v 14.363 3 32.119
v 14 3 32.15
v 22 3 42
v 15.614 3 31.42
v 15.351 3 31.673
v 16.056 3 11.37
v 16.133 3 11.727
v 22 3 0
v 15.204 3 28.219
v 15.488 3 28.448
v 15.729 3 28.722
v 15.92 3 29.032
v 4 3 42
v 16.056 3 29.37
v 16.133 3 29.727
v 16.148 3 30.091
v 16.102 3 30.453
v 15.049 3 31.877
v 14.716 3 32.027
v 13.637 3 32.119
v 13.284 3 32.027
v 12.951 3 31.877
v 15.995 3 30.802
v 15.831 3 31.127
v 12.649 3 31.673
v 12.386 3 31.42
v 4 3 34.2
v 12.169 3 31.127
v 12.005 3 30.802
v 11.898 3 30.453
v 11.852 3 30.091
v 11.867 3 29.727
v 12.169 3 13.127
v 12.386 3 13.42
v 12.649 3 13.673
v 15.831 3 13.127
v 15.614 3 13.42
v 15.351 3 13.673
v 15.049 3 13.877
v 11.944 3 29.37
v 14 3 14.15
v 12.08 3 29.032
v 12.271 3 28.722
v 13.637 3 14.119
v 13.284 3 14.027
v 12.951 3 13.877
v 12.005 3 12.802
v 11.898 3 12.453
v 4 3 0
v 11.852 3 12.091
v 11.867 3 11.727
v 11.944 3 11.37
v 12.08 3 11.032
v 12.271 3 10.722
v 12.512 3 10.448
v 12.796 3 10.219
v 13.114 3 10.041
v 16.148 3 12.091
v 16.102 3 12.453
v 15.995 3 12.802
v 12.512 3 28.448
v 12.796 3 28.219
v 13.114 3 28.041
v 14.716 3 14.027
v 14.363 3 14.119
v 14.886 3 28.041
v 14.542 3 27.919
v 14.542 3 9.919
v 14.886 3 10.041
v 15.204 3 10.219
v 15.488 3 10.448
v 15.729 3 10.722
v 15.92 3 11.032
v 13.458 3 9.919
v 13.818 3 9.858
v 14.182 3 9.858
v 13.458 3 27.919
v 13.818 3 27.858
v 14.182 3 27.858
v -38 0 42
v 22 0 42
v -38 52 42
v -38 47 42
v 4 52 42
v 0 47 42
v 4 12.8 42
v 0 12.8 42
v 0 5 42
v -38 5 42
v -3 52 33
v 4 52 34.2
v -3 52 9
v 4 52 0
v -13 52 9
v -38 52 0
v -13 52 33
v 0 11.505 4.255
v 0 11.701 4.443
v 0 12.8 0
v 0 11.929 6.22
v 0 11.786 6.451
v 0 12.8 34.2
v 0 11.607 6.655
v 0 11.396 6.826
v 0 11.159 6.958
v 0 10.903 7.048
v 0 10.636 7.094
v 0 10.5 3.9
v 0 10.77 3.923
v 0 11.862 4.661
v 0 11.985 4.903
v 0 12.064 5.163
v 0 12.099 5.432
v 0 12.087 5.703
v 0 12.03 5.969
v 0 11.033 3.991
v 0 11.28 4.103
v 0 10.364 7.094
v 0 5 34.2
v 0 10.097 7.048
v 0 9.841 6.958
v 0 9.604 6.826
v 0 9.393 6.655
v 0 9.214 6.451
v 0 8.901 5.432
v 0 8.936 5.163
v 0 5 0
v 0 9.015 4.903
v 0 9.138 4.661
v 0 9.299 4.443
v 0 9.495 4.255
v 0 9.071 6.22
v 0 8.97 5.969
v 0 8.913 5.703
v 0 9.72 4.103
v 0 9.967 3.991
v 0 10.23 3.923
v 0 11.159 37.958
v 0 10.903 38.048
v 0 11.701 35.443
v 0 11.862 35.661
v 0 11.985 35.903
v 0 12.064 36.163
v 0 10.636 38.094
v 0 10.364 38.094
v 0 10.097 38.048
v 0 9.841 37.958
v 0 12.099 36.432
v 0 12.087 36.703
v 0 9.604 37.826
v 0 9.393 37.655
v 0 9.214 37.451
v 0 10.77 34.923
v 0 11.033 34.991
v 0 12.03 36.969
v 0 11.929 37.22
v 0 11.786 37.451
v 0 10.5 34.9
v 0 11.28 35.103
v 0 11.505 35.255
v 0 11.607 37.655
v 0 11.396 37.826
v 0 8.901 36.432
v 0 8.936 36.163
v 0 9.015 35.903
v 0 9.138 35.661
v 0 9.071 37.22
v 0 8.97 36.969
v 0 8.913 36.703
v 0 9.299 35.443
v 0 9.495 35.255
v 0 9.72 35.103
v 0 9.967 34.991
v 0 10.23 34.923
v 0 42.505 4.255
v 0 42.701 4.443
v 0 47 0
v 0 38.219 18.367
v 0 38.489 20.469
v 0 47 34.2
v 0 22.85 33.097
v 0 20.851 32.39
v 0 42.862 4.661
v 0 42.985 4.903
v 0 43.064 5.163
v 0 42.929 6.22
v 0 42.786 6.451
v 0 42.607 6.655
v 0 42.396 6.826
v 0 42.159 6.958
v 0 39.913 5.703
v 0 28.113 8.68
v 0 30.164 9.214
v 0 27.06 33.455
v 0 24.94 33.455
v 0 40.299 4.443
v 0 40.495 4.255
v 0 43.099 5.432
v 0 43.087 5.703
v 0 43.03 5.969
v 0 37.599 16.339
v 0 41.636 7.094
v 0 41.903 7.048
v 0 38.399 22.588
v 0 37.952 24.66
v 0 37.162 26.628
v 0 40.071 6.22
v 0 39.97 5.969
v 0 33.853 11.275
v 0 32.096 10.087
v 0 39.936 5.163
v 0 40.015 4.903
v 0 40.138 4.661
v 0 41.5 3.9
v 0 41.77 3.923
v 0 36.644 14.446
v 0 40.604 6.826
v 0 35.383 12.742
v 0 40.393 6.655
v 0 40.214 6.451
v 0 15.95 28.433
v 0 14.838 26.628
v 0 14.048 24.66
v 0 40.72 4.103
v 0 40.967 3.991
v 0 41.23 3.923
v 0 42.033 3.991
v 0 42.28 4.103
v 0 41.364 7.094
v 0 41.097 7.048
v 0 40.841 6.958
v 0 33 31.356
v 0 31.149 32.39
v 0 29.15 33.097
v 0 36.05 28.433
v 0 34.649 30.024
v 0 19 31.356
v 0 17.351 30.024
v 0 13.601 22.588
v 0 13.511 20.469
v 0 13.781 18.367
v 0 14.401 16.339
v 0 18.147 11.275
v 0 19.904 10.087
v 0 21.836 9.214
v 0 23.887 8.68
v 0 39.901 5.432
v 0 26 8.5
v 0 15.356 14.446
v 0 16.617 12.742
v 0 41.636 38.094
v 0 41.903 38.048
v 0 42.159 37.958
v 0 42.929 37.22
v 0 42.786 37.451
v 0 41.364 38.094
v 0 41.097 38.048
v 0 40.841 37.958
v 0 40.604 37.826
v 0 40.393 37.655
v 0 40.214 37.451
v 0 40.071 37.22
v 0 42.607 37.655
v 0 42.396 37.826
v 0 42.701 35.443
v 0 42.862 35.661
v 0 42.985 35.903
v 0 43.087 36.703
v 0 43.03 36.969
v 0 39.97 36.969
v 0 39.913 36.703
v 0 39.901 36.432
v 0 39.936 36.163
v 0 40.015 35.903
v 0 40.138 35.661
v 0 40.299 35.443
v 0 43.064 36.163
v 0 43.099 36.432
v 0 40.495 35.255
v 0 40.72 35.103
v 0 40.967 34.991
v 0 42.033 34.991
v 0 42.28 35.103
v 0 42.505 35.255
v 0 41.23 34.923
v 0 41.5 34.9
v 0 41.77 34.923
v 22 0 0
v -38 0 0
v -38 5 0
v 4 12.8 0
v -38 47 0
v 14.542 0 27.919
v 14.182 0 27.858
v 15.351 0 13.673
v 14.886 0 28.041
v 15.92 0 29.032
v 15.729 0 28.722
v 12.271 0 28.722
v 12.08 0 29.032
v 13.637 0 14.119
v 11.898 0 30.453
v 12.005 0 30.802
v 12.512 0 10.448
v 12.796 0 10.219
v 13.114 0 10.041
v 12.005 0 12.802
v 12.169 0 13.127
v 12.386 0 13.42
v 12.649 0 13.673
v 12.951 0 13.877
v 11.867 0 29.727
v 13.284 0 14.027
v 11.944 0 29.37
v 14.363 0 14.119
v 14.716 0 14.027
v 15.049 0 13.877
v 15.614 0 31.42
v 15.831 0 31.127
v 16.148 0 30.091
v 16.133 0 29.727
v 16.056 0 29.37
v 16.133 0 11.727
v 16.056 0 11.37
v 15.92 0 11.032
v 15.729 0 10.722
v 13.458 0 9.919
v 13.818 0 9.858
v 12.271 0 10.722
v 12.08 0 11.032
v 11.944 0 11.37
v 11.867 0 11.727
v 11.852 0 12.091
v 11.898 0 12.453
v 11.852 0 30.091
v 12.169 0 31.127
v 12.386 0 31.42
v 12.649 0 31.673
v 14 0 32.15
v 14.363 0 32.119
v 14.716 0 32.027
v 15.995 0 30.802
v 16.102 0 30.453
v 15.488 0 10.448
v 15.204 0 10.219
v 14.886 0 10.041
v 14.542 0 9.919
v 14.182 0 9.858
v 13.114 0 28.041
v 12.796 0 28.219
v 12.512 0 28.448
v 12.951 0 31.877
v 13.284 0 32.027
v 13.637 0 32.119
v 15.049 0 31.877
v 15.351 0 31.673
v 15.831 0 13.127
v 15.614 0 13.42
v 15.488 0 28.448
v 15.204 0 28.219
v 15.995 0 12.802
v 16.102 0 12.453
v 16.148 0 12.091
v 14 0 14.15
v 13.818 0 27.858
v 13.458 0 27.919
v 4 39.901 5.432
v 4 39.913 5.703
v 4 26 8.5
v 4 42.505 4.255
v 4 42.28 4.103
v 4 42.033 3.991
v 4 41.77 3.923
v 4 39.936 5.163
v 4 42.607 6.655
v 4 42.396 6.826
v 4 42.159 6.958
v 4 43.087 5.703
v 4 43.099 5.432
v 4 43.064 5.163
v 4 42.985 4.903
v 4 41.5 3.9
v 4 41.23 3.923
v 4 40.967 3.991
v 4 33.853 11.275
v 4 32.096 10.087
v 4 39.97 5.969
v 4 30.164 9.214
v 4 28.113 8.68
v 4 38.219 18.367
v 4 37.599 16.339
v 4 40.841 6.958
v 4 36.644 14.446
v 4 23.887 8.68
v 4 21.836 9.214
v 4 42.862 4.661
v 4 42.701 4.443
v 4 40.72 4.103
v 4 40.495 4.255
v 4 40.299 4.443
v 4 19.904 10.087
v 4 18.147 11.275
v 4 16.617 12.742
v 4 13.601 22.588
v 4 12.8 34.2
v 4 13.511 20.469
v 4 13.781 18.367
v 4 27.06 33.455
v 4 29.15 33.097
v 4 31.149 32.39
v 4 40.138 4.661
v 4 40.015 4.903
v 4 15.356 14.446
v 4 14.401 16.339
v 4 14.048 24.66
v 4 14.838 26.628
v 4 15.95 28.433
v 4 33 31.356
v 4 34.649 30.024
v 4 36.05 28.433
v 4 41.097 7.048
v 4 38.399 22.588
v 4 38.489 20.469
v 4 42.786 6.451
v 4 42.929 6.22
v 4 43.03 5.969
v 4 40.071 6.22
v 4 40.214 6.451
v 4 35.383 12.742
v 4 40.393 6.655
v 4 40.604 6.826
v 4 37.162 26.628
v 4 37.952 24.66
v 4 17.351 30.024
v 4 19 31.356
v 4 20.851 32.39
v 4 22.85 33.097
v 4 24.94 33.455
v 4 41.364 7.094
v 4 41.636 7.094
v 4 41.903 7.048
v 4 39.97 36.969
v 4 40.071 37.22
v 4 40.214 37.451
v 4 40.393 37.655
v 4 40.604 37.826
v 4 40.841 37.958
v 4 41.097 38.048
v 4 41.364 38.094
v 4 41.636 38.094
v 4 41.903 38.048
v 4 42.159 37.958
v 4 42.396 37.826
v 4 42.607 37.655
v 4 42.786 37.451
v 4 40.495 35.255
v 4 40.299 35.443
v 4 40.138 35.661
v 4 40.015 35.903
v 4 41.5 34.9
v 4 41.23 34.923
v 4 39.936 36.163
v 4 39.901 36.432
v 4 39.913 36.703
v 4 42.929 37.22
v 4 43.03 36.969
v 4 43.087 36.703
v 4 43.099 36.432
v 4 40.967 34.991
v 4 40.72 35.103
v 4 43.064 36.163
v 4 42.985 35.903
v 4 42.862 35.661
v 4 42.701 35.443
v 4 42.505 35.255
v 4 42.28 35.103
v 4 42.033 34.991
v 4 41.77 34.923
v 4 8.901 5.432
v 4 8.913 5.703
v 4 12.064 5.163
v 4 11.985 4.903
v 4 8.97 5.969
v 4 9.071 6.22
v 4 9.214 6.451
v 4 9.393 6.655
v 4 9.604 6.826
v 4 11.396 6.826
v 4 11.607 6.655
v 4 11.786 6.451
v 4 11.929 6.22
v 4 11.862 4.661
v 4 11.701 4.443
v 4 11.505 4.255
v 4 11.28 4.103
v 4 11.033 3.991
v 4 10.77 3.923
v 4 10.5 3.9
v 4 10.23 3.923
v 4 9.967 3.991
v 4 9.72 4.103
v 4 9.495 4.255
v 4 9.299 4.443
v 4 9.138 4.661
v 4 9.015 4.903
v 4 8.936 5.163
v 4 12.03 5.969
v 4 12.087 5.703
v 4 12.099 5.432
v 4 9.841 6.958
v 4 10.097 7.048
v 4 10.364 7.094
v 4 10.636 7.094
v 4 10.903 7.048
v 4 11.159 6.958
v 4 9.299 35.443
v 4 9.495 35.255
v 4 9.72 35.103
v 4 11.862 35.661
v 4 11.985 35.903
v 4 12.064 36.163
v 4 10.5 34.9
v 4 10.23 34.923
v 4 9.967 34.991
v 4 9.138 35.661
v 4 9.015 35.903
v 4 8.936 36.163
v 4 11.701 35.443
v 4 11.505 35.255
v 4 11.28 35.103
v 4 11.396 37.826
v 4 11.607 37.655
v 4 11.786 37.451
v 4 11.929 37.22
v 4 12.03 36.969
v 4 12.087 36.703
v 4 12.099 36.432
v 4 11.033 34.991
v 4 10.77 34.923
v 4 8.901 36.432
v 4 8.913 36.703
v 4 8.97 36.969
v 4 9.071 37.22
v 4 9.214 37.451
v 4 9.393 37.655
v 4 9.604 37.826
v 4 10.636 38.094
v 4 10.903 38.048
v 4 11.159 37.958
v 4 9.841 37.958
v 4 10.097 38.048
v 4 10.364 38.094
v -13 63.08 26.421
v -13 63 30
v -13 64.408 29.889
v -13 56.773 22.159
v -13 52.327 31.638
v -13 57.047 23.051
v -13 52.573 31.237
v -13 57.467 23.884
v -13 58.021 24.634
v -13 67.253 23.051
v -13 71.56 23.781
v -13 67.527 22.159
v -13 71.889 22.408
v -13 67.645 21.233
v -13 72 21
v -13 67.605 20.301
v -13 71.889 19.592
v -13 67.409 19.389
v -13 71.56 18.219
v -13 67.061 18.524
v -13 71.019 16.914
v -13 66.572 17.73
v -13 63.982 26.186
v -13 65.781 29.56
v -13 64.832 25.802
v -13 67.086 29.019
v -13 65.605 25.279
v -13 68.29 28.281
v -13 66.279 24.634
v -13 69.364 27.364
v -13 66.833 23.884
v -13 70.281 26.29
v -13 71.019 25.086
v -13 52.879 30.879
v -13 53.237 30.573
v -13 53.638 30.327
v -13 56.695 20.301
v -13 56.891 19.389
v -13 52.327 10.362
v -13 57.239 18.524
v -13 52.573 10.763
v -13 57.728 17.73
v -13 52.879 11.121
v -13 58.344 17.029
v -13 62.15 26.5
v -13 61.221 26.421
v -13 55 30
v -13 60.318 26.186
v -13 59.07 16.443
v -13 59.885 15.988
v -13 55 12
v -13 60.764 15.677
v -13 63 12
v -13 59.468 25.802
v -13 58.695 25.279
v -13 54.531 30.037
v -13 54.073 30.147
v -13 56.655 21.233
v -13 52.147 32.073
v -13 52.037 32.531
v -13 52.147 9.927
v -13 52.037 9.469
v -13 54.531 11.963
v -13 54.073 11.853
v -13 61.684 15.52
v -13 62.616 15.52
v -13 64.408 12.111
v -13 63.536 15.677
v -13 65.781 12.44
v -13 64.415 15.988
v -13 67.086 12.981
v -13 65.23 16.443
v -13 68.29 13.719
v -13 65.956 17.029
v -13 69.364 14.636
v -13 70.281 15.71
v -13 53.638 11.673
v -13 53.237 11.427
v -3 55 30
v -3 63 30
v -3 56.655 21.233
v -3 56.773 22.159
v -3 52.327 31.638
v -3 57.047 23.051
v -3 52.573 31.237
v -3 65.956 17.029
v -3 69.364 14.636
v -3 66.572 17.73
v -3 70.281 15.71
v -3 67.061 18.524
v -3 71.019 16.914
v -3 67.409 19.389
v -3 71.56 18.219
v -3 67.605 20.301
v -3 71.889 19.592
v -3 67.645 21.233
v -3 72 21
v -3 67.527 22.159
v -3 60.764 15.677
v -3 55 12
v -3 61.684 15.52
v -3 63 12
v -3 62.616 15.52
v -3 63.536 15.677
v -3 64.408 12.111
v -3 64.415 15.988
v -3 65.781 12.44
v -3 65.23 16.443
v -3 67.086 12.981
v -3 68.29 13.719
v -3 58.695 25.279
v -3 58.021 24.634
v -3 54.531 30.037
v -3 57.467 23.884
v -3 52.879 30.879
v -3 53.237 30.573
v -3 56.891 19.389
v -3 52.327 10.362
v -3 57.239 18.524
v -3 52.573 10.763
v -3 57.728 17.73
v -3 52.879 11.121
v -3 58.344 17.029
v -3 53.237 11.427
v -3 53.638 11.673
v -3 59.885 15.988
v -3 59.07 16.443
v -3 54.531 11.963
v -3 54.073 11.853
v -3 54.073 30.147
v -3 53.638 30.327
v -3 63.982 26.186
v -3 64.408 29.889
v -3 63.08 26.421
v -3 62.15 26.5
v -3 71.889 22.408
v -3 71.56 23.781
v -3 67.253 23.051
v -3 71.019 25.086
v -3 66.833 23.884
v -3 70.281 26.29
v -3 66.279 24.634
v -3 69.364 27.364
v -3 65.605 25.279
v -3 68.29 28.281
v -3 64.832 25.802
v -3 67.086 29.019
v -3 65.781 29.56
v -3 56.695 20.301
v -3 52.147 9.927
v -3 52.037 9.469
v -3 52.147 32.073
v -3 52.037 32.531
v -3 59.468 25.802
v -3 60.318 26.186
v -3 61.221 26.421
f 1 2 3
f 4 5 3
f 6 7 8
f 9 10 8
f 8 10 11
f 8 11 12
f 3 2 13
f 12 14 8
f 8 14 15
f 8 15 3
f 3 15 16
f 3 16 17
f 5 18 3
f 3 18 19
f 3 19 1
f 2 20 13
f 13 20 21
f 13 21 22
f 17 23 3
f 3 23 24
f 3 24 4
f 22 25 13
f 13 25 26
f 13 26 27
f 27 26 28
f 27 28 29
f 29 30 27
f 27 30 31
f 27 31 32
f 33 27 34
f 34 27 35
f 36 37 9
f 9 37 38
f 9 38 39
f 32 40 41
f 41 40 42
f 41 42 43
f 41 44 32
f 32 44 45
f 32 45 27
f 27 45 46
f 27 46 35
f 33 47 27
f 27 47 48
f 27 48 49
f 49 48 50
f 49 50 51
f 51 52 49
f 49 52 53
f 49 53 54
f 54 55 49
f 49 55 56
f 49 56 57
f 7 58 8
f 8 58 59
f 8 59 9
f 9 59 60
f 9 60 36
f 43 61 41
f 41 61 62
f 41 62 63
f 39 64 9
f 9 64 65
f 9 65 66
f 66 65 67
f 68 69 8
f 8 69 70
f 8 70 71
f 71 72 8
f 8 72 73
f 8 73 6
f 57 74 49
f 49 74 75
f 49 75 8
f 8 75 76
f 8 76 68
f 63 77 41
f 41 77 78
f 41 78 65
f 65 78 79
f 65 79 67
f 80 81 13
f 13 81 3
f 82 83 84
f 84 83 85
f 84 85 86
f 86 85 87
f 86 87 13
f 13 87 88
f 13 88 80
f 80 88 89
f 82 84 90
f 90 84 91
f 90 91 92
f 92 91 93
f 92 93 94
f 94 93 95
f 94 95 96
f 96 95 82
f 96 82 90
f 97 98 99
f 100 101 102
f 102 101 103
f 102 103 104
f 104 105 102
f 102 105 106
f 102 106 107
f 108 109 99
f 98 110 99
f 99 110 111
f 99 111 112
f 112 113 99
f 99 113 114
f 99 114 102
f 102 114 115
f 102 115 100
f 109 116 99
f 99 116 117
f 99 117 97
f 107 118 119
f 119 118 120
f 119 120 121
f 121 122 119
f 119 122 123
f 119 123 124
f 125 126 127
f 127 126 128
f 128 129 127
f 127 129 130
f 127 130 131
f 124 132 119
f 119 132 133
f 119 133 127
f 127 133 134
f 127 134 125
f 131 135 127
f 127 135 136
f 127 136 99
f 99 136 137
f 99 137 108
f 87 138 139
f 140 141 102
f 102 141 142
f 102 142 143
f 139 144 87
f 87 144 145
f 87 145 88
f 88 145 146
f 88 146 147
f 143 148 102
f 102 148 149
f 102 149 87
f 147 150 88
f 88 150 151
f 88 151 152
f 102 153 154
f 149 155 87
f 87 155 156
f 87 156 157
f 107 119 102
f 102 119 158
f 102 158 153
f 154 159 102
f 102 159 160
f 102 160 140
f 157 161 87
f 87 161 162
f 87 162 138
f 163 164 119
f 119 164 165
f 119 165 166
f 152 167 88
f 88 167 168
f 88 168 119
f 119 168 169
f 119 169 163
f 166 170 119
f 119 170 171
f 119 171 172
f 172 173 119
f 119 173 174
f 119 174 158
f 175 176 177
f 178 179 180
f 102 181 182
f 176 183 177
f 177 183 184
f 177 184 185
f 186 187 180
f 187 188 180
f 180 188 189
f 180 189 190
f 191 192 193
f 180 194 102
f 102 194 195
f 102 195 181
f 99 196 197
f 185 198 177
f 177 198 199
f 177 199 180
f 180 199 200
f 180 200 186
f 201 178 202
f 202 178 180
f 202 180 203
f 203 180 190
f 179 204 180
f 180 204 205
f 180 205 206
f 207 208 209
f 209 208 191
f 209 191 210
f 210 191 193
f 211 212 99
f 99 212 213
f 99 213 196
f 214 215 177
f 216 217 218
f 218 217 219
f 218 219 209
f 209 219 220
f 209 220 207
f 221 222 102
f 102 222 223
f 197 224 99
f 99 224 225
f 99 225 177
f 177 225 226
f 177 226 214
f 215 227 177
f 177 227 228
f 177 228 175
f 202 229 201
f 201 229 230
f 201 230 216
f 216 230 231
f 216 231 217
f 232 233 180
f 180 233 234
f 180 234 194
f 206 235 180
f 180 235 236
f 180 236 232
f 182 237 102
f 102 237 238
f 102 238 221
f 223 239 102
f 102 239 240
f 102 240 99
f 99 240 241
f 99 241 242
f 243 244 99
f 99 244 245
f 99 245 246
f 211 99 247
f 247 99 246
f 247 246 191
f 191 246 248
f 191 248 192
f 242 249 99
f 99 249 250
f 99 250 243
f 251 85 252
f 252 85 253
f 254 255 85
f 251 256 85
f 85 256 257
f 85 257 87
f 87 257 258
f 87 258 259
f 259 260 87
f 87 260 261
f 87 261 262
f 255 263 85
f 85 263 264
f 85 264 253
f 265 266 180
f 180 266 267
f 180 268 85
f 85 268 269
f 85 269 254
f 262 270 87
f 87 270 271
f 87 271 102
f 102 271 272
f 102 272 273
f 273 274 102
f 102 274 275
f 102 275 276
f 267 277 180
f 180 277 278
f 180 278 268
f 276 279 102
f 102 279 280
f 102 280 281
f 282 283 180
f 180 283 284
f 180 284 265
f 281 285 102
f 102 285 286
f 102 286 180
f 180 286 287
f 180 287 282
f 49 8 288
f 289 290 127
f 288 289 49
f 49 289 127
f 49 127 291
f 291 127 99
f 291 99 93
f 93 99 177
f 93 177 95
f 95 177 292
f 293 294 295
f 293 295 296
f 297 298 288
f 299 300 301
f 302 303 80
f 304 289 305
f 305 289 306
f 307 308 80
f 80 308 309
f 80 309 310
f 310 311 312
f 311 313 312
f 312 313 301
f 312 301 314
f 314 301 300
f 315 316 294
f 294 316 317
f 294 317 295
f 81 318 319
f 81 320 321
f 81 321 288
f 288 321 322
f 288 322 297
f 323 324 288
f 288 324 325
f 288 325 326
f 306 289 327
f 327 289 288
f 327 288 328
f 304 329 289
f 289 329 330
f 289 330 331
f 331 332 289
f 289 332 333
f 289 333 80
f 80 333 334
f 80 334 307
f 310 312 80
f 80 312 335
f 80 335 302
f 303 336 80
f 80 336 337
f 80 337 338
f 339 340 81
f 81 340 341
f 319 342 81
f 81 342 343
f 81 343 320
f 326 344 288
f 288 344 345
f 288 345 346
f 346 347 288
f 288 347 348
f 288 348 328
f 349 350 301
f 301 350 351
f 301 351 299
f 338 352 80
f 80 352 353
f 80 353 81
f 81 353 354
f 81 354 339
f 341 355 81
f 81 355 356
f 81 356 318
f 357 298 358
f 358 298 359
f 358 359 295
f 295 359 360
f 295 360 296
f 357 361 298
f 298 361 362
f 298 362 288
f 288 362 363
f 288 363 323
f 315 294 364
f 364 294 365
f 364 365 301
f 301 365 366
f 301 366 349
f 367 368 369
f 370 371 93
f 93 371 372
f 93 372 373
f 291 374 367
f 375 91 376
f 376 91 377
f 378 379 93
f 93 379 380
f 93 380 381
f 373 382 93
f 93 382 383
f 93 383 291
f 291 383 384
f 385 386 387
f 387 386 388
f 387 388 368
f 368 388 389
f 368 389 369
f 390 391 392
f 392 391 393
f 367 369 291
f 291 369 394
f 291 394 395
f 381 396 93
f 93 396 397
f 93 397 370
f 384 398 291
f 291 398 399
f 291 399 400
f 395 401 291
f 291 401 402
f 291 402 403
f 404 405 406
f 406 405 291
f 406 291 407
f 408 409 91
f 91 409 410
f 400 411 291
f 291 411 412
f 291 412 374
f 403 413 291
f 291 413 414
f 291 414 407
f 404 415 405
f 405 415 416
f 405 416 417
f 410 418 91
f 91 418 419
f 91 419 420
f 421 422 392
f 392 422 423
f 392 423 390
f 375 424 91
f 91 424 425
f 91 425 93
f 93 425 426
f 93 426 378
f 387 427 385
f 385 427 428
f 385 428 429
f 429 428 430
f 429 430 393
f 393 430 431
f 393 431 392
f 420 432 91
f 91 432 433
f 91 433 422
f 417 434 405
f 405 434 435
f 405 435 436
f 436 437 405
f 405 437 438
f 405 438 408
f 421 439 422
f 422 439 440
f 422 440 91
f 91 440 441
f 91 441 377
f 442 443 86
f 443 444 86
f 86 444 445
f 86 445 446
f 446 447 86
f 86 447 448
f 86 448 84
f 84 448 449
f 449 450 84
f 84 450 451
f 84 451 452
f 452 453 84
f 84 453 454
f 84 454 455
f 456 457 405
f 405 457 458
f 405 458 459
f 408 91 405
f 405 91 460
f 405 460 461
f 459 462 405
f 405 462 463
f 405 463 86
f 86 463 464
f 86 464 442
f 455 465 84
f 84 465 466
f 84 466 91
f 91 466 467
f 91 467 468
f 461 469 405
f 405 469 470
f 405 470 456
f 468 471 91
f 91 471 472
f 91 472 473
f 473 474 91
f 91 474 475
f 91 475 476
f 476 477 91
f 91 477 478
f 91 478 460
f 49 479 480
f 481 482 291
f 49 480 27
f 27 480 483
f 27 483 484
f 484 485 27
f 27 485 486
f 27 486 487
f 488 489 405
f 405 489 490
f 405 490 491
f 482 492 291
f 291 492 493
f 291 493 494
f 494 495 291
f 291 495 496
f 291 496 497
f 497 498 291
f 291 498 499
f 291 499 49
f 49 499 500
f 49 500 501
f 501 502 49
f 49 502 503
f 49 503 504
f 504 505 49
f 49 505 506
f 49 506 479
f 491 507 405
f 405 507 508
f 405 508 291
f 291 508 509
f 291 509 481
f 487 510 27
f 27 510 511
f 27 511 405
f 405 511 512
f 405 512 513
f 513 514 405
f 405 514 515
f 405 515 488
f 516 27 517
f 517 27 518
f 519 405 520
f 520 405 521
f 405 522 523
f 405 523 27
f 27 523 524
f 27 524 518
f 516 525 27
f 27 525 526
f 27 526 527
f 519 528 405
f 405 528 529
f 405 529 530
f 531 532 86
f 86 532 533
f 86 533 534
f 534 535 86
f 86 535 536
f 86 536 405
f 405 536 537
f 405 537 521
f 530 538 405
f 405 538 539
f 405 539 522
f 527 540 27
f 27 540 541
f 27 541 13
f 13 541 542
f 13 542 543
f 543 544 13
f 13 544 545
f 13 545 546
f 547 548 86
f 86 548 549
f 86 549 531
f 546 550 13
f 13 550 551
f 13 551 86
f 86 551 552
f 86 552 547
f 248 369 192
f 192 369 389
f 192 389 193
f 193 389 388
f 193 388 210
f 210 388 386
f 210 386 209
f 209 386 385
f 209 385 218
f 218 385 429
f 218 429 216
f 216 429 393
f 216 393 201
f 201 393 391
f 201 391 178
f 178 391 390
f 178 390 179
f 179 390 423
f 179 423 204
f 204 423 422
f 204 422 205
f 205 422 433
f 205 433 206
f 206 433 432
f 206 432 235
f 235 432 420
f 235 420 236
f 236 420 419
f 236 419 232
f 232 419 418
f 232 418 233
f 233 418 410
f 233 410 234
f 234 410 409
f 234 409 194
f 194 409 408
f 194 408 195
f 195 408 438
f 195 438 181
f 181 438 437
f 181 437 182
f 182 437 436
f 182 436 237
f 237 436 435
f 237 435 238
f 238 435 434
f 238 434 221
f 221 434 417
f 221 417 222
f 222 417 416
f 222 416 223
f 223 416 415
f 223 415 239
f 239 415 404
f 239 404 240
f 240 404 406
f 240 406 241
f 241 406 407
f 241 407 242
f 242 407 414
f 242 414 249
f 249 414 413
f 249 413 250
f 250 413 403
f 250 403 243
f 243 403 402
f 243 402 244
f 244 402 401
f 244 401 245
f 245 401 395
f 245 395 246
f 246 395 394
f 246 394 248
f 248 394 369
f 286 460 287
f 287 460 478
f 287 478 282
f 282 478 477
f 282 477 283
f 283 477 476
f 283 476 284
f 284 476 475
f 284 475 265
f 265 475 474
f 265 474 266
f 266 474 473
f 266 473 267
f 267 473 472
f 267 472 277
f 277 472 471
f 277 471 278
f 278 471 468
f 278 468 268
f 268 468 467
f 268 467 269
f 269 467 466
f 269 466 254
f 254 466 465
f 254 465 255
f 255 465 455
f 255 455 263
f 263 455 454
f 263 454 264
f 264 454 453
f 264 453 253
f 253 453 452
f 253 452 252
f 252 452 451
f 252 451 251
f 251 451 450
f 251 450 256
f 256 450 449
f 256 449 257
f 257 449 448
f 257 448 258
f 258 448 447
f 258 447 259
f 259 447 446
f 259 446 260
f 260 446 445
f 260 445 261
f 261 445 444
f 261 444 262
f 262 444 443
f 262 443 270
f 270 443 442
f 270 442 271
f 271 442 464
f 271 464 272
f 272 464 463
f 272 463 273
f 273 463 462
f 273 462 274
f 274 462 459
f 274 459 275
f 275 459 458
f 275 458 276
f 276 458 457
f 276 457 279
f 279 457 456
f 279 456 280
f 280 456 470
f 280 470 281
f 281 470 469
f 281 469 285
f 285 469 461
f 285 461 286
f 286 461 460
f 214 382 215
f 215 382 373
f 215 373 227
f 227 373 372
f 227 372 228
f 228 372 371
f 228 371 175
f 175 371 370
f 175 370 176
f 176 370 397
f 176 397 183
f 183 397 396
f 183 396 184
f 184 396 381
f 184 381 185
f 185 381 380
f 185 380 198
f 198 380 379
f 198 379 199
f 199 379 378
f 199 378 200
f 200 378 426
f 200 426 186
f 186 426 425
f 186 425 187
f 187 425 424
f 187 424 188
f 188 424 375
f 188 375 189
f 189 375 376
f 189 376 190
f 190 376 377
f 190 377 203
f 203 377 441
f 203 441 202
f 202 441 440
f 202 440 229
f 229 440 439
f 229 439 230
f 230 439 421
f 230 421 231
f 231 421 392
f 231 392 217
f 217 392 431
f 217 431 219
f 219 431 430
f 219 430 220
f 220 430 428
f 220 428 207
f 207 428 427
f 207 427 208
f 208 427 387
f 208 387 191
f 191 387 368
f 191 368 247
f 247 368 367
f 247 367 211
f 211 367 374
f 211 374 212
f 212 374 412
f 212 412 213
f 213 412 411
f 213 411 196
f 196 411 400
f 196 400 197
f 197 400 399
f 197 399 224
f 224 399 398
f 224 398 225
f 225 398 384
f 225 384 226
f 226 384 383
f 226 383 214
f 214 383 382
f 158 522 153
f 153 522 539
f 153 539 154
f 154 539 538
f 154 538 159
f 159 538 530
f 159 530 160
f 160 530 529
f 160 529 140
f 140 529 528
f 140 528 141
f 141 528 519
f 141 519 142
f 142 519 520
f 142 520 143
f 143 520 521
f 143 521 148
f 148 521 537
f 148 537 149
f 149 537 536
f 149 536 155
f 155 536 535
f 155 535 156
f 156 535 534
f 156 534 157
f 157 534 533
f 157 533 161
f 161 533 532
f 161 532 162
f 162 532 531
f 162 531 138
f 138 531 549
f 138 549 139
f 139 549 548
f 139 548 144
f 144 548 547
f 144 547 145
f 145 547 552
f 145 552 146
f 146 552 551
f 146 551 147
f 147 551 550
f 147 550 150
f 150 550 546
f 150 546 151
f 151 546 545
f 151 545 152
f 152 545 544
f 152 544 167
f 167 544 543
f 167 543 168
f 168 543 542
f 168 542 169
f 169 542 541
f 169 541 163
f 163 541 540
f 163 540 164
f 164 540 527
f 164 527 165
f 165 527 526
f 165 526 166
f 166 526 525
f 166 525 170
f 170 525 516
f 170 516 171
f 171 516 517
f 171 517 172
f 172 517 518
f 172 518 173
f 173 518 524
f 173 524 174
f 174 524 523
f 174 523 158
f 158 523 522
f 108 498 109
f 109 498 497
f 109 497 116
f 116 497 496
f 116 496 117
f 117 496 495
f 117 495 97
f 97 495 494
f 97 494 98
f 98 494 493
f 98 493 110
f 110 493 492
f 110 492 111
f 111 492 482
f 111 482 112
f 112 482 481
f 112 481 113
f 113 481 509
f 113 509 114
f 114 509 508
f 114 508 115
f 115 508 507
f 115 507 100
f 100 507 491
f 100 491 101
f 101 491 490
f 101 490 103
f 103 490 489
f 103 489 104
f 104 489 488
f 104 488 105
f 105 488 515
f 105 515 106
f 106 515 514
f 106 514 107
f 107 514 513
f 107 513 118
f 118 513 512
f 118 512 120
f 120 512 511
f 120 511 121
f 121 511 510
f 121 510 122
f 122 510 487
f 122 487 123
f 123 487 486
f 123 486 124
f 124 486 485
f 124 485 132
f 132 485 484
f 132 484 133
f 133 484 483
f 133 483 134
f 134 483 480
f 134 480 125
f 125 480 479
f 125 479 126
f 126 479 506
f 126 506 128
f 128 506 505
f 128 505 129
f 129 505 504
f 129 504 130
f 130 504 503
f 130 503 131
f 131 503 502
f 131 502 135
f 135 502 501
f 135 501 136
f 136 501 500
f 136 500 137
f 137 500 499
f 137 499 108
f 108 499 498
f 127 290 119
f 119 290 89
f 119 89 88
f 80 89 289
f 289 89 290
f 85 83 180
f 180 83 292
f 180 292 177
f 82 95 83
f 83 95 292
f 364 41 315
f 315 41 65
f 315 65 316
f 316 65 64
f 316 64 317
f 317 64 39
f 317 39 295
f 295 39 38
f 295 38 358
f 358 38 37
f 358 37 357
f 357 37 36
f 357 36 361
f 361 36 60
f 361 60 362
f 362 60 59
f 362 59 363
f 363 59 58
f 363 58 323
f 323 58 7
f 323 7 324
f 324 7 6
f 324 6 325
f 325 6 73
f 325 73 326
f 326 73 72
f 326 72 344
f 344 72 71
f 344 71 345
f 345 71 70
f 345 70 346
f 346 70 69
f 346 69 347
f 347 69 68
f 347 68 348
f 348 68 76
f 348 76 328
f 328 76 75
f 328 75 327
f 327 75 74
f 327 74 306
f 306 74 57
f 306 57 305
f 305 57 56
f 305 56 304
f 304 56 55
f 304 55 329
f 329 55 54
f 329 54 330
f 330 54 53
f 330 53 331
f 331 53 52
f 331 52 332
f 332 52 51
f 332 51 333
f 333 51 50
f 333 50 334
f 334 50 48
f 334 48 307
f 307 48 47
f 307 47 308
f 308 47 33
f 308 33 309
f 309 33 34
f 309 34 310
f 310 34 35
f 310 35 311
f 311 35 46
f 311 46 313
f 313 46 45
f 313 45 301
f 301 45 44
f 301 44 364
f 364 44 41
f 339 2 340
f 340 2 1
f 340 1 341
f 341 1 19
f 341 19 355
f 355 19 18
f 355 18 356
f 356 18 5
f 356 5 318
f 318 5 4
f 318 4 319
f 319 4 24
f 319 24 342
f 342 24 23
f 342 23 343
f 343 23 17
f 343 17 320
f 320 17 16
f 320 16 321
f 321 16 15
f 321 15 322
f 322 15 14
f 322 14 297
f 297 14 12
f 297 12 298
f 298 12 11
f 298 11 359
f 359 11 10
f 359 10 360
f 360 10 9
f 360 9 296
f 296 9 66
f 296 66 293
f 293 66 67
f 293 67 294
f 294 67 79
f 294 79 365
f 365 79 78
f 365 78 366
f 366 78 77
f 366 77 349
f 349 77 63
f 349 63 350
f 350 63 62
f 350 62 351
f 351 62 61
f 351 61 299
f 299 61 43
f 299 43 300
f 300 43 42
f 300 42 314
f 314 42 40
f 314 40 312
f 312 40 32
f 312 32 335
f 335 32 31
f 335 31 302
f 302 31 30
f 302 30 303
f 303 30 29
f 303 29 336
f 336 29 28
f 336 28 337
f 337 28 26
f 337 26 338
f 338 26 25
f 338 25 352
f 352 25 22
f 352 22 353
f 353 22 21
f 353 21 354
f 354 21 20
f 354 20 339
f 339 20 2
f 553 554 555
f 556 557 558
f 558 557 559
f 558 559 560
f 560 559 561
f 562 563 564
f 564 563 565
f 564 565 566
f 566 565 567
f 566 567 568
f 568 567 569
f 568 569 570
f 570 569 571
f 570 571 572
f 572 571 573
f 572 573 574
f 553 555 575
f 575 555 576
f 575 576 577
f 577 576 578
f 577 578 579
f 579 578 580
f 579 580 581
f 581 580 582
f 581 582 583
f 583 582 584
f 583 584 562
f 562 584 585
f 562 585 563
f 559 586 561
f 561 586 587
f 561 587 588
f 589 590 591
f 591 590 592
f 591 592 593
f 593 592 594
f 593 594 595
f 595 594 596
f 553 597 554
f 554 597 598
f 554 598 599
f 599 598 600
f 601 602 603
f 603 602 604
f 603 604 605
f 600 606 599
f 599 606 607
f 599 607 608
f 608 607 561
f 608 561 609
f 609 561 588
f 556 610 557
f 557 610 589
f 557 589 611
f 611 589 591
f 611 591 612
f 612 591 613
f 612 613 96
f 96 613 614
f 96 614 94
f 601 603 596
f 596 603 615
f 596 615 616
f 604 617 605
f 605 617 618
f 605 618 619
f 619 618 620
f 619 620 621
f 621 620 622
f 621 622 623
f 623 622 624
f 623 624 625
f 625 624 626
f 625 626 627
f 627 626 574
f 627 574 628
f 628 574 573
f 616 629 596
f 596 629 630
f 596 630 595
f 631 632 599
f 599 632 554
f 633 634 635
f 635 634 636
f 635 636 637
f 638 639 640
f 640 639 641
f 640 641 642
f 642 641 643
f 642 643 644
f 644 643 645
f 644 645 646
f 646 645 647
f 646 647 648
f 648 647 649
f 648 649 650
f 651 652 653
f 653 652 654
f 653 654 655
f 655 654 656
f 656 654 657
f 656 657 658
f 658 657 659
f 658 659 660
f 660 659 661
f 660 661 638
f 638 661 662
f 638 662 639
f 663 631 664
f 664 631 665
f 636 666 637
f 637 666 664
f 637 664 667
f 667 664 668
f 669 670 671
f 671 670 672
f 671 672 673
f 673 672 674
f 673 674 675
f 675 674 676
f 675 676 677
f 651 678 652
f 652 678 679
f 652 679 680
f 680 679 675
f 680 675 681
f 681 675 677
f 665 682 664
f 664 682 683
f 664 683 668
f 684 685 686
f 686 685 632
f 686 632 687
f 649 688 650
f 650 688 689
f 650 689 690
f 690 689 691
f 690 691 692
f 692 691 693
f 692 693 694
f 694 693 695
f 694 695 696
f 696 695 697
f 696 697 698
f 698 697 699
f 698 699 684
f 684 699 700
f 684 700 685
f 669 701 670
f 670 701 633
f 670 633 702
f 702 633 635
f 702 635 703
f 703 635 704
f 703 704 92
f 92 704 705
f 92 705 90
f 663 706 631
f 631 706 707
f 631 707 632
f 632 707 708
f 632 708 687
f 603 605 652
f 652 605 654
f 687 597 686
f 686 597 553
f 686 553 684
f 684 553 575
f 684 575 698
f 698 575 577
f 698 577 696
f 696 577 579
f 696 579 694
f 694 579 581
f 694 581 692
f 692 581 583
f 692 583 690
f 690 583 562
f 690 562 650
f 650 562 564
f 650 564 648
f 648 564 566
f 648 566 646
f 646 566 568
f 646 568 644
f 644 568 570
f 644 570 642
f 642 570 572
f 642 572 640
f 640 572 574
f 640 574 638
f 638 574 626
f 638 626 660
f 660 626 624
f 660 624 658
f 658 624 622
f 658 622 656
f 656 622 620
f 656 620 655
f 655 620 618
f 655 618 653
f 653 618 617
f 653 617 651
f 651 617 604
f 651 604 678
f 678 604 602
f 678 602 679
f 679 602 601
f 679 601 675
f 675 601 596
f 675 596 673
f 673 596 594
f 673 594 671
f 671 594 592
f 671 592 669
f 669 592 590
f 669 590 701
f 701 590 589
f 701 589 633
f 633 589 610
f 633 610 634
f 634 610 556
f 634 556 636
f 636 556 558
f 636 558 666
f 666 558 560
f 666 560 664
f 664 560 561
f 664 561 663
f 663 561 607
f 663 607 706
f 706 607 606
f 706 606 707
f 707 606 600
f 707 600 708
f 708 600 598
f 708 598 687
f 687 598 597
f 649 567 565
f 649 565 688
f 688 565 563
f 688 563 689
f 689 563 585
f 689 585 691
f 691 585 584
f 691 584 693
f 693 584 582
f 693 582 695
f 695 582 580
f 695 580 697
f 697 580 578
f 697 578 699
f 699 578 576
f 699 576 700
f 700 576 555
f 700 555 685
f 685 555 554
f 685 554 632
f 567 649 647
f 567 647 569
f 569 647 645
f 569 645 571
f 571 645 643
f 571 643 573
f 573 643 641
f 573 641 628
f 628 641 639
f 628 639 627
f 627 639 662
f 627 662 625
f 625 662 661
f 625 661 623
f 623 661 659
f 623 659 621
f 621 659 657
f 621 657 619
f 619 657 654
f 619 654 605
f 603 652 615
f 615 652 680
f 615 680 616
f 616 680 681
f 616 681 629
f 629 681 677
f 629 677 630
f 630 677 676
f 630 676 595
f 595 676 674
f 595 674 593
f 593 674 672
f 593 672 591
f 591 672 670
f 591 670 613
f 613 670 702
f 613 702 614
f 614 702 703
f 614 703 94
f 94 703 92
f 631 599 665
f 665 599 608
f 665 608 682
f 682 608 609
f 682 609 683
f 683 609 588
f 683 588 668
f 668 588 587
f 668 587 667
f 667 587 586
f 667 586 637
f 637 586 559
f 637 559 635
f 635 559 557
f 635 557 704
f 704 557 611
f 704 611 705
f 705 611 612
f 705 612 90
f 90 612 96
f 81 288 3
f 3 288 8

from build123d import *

# Parameters (mm, degrees)
SKETCH1_W            = 94
SKETCH1_H            = 42
BOSS_EXTRUDE1_DEPTH  = 3
SKETCH2_W            = 4
SKETCH2_H            = 42
BOSS_EXTRUDE2_DEPTH  = 47
SKETCH3_R            = 12.5
SKETCH3_R_2          = 1.6
CUT_EXTRUDE1_DEPTH   = 114.176852757
SKETCH4_W            = 42
SKETCH4_H            = 5
BOSS_EXTRUDE3_DEPTH  = 40
SKETCH5_W            = 42
SKETCH5_H            = 5
BOSS_EXTRUDE4_DEPTH  = 38
SKETCH7_W            = 42
SKETCH7_H            = 42
SKETCH7_W_2          = 44
BOSS_EXTRUDE6_DEPTH  = 5
SKETCH9_R            = 2.15
CUT_EXTRUDE2_DEPTH   = 149.731301346
SKETCH11_W           = 10
SKETCH11_H           = 18
BOSS_EXTRUDE7_DEPTH  = 20
SKETCH13_R           = 5.5
CUT_EXTRUDE3_DEPTH   = 169.988165266
BOSS_EXTRUDE11_DEPTH = 5
SKETCH23_W           = 10
SKETCH23_H           = 26
BOSS_EXTRUDE12_DEPTH = 50
CUT_EXTRUDE7_DEPTH   = 193.595430891
SKETCH25_W           = 10
SKETCH25_H           = 18
BOSS_EXTRUDE13_DEPTH = 20
SKETCH26_R           = 5.5
CUT_EXTRUDE8_DEPTH   = 193.595430891
SKETCH27_W           = 12
SKETCH27_H           = 18
BOSS_EXTRUDE14_DEPTH = 69
CUT_EXTRUDE10_START  = -5
SKETCH28_R           = 5.5
CUT_EXTRUDE10_DEPTH  = 5
SKETCH29_R           = 5.5
CUT_EXTRUDE11_DEPTH  = 5
FILLET4_R            = 9
FILLET3_R            = 3
SKETCH30_W           = 112
SKETCH30_H           = 120
CUT_EXTRUDE13_DEPTH  = 181.413414135


# Some blends are built 0.0001 mm under size
with BuildPart() as part:
    # Sketch1 → Boss-Extrude1 (new body)
    with BuildSketch(Plane(origin=(0, 0, 0), x_dir=(1, 0, 0), z_dir=(0, 1, 0))):
        with Locations((47, -21)):
            Rectangle(SKETCH1_W, SKETCH1_H)
    extrude(amount=BOSS_EXTRUDE1_DEPTH)

    # Sketch2 → Boss-Extrude2 (add)
    with BuildSketch(Plane.XZ):
        with Locations((2, 21)):
            Rectangle(SKETCH2_W, SKETCH2_H)
        with Locations((92, 21)):
            Rectangle(SKETCH2_W, SKETCH2_H)
    extrude(amount=-BOSS_EXTRUDE2_DEPTH)

    # Sketch3 → Cut-Extrude1 (cut, through all)
    with BuildSketch(Plane(origin=(94, 0, 0), x_dir=(0, 0, -1), z_dir=(1, 0, 0))):
        with Locations((-21, 26)):
            Circle(SKETCH3_R)
        with Locations((-36.5, 41.5)):
            Circle(SKETCH3_R_2)
        with Locations((-5.5, 41.5)):
            Circle(SKETCH3_R_2)
        with Locations((-36.5, 10.5)):
            Circle(SKETCH3_R_2)
        with Locations((-5.5, 10.5)):
            Circle(SKETCH3_R_2)
    extrude(amount=-CUT_EXTRUDE1_DEPTH, mode=Mode.SUBTRACT)

    # Sketch4 → Boss-Extrude3 (add)
    with BuildSketch(Plane(origin=(94, 0, 0), x_dir=(0, 0, -1), z_dir=(1, 0, 0))):
        with Locations((-21, 2.5)):
            Rectangle(SKETCH4_W, SKETCH4_H)
    extrude(amount=BOSS_EXTRUDE3_DEPTH)

    # Sketch5 → Boss-Extrude4 (add)
    with BuildSketch(Plane.ZY):
        with Locations((21, 2.5)):
            Rectangle(SKETCH5_W, SKETCH5_H)
    extrude(amount=BOSS_EXTRUDE4_DEPTH)

    # Sketch7 → Boss-Extrude6 (add)
    with BuildSketch(Plane(origin=(0, 47, 0), x_dir=(1, 0, 0), z_dir=(0, 1, 0))):
        with Locations((-17, -21)):
            Rectangle(SKETCH7_W, SKETCH7_H)
        with Locations((112, -21)):
            Rectangle(SKETCH7_W_2, SKETCH7_H)
    extrude(amount=BOSS_EXTRUDE6_DEPTH)

    # Sketch9 → Cut-Extrude2 (cut, through all)
    with BuildSketch(Plane(origin=(0, 3, 0), x_dir=(1, 0, 0), z_dir=(0, 1, 0))):
        with Locations(Location((83, -20, 0), (0, 0, 270))):
            Circle(SKETCH9_R)
        with Locations(Location((65, -20, 0), (0, 0, 270))):
            Circle(SKETCH9_R)
        with Locations(Location((74, -11, 0), (0, 0, 270))):
            Circle(SKETCH9_R)
        with Locations(Location((74, -29, 0), (0, 0, 270))):
            Circle(SKETCH9_R)
        with Locations(Location((14, -12, 0), (0, 0, 270))):
            Circle(SKETCH9_R)
        with Locations(Location((14, -30, 0), (0, 0, 270))):
            Circle(SKETCH9_R)
        with Locations(Location((30, -12, 0), (0, 0, 270))):
            Circle(SKETCH9_R)
        with Locations(Location((30, -30, 0), (0, 0, 270))):
            Circle(SKETCH9_R)
    extrude(amount=-CUT_EXTRUDE2_DEPTH, mode=Mode.SUBTRACT)

    # Sketch11 → Boss-Extrude7 (add)
    with BuildSketch(Plane(origin=(0, 52, 0), x_dir=(1, 0, 0), z_dir=(0, 1, 0))):
        with Locations((-8, -21)):
            Rectangle(SKETCH11_W, SKETCH11_H)
        with Locations((107, -21)):
            Rectangle(SKETCH11_W, SKETCH11_H)
    extrude(amount=BOSS_EXTRUDE7_DEPTH)

    # Sketch13 → Cut-Extrude3 (cut, through all)
    with BuildSketch(Plane.ZY.offset(13)):
        with Locations((21, 62.15)):
            Circle(SKETCH13_R)
    extrude(amount=-CUT_EXTRUDE3_DEPTH, mode=Mode.SUBTRACT)

    # Sketch20 → Boss-Extrude11 (add)
    with BuildSketch(Plane.XY.offset(42)):
        Polygon((134, 0), (134, 52), (90, 52), (90, 0), (95, 0), (95, 20), (102, 26), (112, 26), (129, 20), (129, 0), align=None)
    extrude(amount=BOSS_EXTRUDE11_DEPTH)

    # Sketch23 → Boss-Extrude12 (add)
    with BuildSketch(Plane.XY.offset(47)):
        with Locations((107, 39)):
            Rectangle(SKETCH23_W, SKETCH23_H)
    extrude(amount=BOSS_EXTRUDE12_DEPTH)

    # Sketch24 → Cut-Extrude7 (cut, through all)
    with BuildSketch(Plane(origin=(112, 0, 0), x_dir=(0, 0, -1), z_dir=(1, 0, 0))):
        Polygon((-47, 26), (-97, 39), (-97, 26), align=None)
    extrude(amount=-CUT_EXTRUDE7_DEPTH, mode=Mode.SUBTRACT)

    # Sketch25 → Boss-Extrude13 (add)
    with BuildSketch(Plane(origin=(0, 52, 0), x_dir=(1, 0, 0), z_dir=(0, 1, 0))):
        with Locations((107, -71)):
            Rectangle(SKETCH25_W, SKETCH25_H)
    extrude(amount=BOSS_EXTRUDE13_DEPTH)

    # Sketch26 → Cut-Extrude8 (cut, through all)
    with BuildSketch(Plane(origin=(112, 0, 0), x_dir=(0, 0, -1), z_dir=(1, 0, 0))):
        with Locations((-71, 62.15)):
            Circle(SKETCH26_R)
    extrude(amount=-CUT_EXTRUDE8_DEPTH, mode=Mode.SUBTRACT)

    # Sketch27 → Boss-Extrude14 (add)
    with BuildSketch(Plane(origin=(0, 3, 0), x_dir=(1, 0, 0), z_dir=(0, 1, 0))):
        with Locations((47, -21)):
            Rectangle(SKETCH27_W, SKETCH27_H)
    extrude(amount=BOSS_EXTRUDE14_DEPTH)

    # Sketch28 → Cut-Extrude10 (cut)
    with BuildSketch(Plane(origin=(53, 0, 0), x_dir=(0, 0, -1), z_dir=(1, 0, 0)).offset(CUT_EXTRUDE10_START)):
        with Locations(Location((-21, 62.15, 0), (0, 0, 180))):
            Circle(SKETCH28_R)
    extrude(amount=CUT_EXTRUDE10_DEPTH, mode=Mode.SUBTRACT)

    # Sketch29 → Cut-Extrude11 (cut)
    with BuildSketch(Plane.ZY.offset(-41)):
        with Locations((21, 62.15)):
            Circle(SKETCH29_R)
    extrude(amount=-CUT_EXTRUDE11_DEPTH, mode=Mode.SUBTRACT)

    # Fillet4
    fillet4_edges = [part.edges().sort_by_distance(p)[0] for p in [
        (-8, 72, 12),
        (-8, 72, 30),
        (107, 72, 12),
        (107, 72, 30),
        (107, 72, 62),
        (107, 72, 80),
        (47, 72, 12),
        (47, 72, 30),
    ]]
    fillet(fillet4_edges, radius=FILLET4_R - 0.0001)  # a hair under: the kernel refuses the full size

    # Fillet3
    # the kernel refuses this fillet: 3 mm, written as the material it adds along each edge
    with BuildSketch(Plane(origin=(-3, 52, 30), x_dir=(0, 1, 0), z_dir=(-1, 0, 0)), Plane(origin=(112, 52, 80), x_dir=(0, 1, 0), z_dir=(-1, 0, 0))) as fillet3_piece_1:
        with BuildLine():
            CenterArc((FILLET3_R, -FILLET3_R), FILLET3_R, 90, 90)
            Line((0, -FILLET3_R), (0, 0))
            Line((0, 0), (FILLET3_R, 0))
        make_face()
    extrude(amount=10)
    with BuildSketch(Plane(origin=(-13, 52, 12), x_dir=(0, 0, -1), z_dir=(1, 0, 0)), Plane(origin=(112, 52, 30), x_dir=(0, 0, 1), z_dir=(-1, 0, 0)), Plane(origin=(102, 52, 12), x_dir=(0, 0, -1), z_dir=(1, 0, 0)), Plane(origin=(102, 52, 62), x_dir=(0, 0, -1), z_dir=(1, 0, 0))) as fillet3_piece_2:
        with BuildLine():
            CenterArc((FILLET3_R, FILLET3_R), FILLET3_R, 180, 90)
            Line((0, FILLET3_R), (0, 0))
            Line((0, 0), (FILLET3_R, 0))
        make_face()
    extrude(amount=10)
    with BuildSketch(Plane(origin=(95, 20, 42), x_dir=(0, -1, 0), z_dir=(0, 0, 1))) as fillet3_piece_3:
        with BuildLine():
            CenterArc((FILLET3_R * 0.45993492247, FILLET3_R), FILLET3_R, 220.601294645, 49.398705355)
            Line((-FILLET3_R * 0.299321679895, FILLET3_R * 0.349208626544), (0, 0))
            Line((0, 0), (FILLET3_R * 0.45993492247, 0))
        make_face()
    extrude(amount=5)
    with BuildSketch(Plane(origin=(102, 26, 42), x_dir=(-0.7592566023652966, -0.6507913734559685, 0), z_dir=(0, 0, 1))) as fillet3_piece_4:
        with BuildLine():
            CenterArc((FILLET3_R * 0.369924076215, FILLET3_R), FILLET3_R, 229.398705355, 40.601294645)
            Line((-FILLET3_R * 0.28086729724, FILLET3_R * 0.240743397635), (0, 0))
            Line((0, 0), (FILLET3_R * 0.369924076215, 0))
        make_face()
    extrude(amount=5)
    with BuildSketch(Plane(origin=(112, 26, 42), x_dir=(0.942990333582889, -0.3328201177351389, 0), z_dir=(0, 0, 1))) as fillet3_piece_5:
        with BuildLine():
            CenterArc((FILLET3_R * 0.171292729553, -FILLET3_R), FILLET3_R, 90, 19.440034828)
            Line((-FILLET3_R * 0.161527388182, -FILLET3_R * 0.0570096664171), (0, 0))
            Line((0, 0), (FILLET3_R * 0.171292729553, 0))
        make_face()
    extrude(amount=5)
    with BuildSketch(Plane(origin=(129, 20, 42), x_dir=(0, -1, 0), z_dir=(0, 0, 1))) as fillet3_piece_6:
        with BuildLine():
            CenterArc((FILLET3_R * 0.707515081019, -FILLET3_R), FILLET3_R, 90, 70.559965172)
            Line((-FILLET3_R * 0.235475252564, -FILLET3_R * 0.667179882265), (0, 0))
            Line((0, 0), (FILLET3_R * 0.707515081019, 0))
        make_face()
    extrude(amount=5)
    with BuildSketch(Plane(origin=(53, 3, 30), x_dir=(0, 0, 1), z_dir=(-1, 0, 0)), Plane(origin=(41, 3, 12), x_dir=(0, 0, -1), z_dir=(1, 0, 0))) as fillet3_piece_7:
        with BuildLine():
            CenterArc((FILLET3_R, FILLET3_R), FILLET3_R, 180, 90)
            Line((0, FILLET3_R), (0, 0))
            Line((0, 0), (FILLET3_R, 0))
        make_face()
    extrude(amount=12)
    # the kernel refuses this fillet: 3 mm, written as the material it takes off along each edge
    with BuildSketch(Plane(origin=(94.5, 52, 97), x_dir=(0, 0, -1), z_dir=(1, 0, 0))) as fillet3_2_piece_1:
        with BuildLine():
            CenterArc((FILLET3_R, -FILLET3_R), FILLET3_R, 90, 90)
            Line((0, -FILLET3_R), (0, 0))
            Line((0, 0), (FILLET3_R, 0))
        make_face()
    extrude(amount=25, mode=Mode.SUBTRACT)
    with BuildSketch(Plane(origin=(117.799354812, 39, 97), x_dir=(0, -0.25163385176495195, -0.9678225067882716), z_dir=(-1, 0, 0))) as fillet3_2_piece_2:
        with BuildLine():
            CenterArc((FILLET3_R * 0.773247308247, -FILLET3_R), FILLET3_R, 90, 75.425783802)
            Line((-FILLET3_R * 0.194575198541, -FILLET3_R * 0.748366148235), (0, 0))
            Line((0, 0), (FILLET3_R * 0.773247308247, 0))
        make_face()
    extrude(amount=21.598709624, mode=Mode.SUBTRACT)

    # Sketch30 → Cut-Extrude13 (cut, through all)
    with BuildSketch(Plane.XZ):
        with Locations((78, 60)):
            Rectangle(SKETCH30_W, SKETCH30_H)
    extrude(amount=-CUT_EXTRUDE13_DEPTH, mode=Mode.SUBTRACT)


solid = part.part
